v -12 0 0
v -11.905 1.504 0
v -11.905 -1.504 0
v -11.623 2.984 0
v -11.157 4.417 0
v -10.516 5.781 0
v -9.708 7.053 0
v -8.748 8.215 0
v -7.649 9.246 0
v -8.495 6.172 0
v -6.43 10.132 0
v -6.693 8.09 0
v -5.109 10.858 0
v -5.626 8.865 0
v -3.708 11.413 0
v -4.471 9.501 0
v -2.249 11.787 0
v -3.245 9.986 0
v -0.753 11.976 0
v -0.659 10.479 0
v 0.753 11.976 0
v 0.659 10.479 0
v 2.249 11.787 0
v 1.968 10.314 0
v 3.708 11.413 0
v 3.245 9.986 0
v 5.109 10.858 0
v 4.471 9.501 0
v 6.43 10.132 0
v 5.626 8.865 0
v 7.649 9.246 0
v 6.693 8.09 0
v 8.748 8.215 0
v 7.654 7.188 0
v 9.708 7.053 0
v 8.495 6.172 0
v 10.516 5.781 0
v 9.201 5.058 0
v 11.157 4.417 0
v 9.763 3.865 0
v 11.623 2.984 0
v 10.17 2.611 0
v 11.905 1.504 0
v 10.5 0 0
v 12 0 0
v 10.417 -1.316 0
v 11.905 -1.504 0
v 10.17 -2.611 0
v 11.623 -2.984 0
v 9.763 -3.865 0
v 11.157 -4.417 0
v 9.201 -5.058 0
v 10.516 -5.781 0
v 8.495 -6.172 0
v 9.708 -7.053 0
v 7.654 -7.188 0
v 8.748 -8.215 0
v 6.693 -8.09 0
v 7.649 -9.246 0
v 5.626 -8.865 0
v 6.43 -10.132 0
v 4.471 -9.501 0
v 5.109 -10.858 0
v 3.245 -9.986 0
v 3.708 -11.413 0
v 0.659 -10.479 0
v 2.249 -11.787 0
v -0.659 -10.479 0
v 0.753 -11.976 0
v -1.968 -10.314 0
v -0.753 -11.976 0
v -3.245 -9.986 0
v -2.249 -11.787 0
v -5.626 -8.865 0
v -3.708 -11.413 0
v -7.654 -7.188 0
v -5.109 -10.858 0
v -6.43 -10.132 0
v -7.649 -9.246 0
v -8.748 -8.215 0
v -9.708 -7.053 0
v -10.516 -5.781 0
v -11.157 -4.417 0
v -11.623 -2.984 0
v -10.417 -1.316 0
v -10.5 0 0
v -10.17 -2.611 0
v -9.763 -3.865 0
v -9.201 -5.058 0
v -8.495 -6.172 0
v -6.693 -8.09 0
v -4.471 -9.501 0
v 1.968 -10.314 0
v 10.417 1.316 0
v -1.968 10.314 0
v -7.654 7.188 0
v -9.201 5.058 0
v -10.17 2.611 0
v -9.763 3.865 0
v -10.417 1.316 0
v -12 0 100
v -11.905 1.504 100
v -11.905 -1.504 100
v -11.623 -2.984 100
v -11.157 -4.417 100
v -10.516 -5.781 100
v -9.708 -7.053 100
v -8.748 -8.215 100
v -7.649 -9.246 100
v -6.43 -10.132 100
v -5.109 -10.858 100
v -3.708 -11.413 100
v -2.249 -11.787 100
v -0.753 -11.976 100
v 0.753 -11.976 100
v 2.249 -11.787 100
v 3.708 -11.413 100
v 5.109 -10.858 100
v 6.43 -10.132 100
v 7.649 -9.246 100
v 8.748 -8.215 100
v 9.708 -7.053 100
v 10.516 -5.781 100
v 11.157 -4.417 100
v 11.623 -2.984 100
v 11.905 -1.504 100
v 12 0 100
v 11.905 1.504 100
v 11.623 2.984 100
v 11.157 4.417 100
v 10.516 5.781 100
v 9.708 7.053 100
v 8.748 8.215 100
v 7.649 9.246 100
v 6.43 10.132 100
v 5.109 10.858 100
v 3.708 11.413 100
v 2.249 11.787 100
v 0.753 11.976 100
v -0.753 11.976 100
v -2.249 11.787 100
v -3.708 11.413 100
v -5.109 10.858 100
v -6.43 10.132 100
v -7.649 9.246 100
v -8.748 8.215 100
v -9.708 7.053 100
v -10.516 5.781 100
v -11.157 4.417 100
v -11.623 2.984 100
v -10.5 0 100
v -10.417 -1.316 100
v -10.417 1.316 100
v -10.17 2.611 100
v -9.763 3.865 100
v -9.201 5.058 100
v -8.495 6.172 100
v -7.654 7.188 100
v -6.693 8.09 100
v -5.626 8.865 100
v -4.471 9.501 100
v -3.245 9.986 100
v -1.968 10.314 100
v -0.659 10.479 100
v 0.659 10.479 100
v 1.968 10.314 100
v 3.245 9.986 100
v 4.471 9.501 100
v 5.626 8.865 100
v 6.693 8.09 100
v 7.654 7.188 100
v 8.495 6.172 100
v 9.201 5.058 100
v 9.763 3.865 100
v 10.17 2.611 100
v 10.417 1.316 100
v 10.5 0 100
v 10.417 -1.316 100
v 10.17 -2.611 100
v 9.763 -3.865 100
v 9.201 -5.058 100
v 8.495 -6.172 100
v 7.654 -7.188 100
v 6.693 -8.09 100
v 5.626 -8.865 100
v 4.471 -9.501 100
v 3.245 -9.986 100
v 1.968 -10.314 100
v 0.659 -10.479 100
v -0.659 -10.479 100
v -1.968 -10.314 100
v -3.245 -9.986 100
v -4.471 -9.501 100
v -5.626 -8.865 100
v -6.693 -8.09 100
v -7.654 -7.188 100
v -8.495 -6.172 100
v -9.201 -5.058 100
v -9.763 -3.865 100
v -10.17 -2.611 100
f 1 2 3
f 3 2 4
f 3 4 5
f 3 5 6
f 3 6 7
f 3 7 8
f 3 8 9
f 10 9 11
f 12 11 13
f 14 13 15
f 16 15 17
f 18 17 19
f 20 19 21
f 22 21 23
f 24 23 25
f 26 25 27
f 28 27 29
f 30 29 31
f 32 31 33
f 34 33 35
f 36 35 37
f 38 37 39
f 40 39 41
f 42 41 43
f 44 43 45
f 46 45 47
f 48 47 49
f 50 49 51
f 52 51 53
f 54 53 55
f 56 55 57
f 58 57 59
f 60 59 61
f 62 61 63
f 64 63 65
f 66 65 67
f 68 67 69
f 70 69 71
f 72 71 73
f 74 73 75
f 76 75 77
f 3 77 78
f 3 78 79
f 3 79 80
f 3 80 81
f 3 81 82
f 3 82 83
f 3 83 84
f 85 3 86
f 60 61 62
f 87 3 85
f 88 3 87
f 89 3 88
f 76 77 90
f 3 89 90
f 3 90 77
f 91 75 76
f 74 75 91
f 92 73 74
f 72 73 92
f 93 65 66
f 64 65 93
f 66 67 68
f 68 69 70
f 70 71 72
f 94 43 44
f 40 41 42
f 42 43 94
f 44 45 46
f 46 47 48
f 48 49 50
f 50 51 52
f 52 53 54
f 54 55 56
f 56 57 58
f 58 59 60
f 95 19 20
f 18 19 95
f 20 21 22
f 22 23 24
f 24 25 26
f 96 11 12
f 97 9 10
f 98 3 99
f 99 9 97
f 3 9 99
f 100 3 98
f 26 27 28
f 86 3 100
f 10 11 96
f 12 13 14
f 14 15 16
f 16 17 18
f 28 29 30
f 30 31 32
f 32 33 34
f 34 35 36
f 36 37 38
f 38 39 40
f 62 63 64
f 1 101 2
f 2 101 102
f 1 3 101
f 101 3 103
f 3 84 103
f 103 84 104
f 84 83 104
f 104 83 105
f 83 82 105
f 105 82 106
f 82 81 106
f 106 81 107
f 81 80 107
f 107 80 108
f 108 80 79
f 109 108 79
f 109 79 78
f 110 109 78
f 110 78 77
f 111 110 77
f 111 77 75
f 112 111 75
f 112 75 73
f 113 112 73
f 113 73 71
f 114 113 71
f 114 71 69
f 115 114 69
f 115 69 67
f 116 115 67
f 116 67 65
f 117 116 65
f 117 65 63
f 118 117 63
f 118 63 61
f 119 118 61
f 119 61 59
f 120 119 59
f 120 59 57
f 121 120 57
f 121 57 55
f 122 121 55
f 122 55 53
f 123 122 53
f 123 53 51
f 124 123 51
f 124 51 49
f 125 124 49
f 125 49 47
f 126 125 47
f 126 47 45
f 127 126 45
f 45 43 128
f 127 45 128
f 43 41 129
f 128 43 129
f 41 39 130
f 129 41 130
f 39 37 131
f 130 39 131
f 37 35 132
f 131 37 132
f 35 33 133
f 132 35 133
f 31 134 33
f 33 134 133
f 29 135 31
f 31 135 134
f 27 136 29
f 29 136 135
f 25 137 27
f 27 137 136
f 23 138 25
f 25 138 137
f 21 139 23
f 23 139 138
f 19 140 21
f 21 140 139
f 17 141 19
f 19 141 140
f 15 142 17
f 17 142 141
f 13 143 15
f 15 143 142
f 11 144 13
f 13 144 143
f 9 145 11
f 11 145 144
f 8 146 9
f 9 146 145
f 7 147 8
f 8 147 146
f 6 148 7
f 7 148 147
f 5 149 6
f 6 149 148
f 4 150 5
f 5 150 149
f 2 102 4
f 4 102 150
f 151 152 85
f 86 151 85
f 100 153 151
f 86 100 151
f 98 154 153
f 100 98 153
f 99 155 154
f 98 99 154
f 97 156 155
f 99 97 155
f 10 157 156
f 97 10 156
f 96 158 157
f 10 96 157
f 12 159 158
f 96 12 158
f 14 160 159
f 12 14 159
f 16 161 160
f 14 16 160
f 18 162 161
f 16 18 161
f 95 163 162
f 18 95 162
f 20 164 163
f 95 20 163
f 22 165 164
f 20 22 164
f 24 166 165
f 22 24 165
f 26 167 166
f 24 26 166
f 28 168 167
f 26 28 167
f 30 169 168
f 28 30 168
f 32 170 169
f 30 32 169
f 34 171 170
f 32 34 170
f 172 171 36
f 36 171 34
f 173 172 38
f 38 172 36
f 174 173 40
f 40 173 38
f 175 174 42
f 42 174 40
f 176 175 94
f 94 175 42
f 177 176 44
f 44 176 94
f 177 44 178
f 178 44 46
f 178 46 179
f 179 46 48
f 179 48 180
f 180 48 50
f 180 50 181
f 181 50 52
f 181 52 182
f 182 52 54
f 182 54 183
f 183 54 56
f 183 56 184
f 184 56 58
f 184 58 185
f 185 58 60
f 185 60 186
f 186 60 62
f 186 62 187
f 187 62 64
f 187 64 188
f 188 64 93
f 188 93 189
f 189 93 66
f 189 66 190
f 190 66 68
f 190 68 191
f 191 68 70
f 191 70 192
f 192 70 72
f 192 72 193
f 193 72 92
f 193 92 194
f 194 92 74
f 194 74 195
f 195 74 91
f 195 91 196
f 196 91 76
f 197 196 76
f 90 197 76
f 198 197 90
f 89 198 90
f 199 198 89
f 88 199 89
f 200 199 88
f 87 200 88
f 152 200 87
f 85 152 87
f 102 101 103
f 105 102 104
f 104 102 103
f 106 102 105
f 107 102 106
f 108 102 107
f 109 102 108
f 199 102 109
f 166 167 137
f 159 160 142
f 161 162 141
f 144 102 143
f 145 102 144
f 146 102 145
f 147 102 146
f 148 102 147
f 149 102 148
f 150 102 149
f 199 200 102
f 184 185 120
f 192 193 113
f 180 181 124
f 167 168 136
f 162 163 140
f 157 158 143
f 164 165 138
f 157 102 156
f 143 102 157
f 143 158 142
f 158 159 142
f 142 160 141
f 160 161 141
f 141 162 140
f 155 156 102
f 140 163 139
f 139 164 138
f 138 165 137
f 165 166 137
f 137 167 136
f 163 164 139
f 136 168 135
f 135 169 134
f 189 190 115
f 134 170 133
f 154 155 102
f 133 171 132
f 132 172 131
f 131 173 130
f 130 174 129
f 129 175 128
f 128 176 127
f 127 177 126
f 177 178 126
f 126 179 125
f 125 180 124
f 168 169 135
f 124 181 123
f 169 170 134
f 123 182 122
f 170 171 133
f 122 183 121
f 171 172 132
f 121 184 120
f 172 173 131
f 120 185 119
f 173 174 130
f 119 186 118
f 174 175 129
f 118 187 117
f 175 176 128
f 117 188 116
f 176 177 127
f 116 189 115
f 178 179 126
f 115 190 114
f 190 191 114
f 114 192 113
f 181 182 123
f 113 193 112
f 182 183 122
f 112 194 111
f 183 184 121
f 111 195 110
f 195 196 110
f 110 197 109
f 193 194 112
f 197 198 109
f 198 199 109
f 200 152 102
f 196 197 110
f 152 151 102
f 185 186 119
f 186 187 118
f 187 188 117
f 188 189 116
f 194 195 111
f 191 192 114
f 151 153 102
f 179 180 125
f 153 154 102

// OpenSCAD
// Longer support thingy for filament holder, Prusa I3 Hephestos

// Like it round, as it needs to rotate.
$fn = 50;
difference() {
  cylinder( h = 100, r = 12 );
  cylinder( h = 100, r = 10.50 );
}
